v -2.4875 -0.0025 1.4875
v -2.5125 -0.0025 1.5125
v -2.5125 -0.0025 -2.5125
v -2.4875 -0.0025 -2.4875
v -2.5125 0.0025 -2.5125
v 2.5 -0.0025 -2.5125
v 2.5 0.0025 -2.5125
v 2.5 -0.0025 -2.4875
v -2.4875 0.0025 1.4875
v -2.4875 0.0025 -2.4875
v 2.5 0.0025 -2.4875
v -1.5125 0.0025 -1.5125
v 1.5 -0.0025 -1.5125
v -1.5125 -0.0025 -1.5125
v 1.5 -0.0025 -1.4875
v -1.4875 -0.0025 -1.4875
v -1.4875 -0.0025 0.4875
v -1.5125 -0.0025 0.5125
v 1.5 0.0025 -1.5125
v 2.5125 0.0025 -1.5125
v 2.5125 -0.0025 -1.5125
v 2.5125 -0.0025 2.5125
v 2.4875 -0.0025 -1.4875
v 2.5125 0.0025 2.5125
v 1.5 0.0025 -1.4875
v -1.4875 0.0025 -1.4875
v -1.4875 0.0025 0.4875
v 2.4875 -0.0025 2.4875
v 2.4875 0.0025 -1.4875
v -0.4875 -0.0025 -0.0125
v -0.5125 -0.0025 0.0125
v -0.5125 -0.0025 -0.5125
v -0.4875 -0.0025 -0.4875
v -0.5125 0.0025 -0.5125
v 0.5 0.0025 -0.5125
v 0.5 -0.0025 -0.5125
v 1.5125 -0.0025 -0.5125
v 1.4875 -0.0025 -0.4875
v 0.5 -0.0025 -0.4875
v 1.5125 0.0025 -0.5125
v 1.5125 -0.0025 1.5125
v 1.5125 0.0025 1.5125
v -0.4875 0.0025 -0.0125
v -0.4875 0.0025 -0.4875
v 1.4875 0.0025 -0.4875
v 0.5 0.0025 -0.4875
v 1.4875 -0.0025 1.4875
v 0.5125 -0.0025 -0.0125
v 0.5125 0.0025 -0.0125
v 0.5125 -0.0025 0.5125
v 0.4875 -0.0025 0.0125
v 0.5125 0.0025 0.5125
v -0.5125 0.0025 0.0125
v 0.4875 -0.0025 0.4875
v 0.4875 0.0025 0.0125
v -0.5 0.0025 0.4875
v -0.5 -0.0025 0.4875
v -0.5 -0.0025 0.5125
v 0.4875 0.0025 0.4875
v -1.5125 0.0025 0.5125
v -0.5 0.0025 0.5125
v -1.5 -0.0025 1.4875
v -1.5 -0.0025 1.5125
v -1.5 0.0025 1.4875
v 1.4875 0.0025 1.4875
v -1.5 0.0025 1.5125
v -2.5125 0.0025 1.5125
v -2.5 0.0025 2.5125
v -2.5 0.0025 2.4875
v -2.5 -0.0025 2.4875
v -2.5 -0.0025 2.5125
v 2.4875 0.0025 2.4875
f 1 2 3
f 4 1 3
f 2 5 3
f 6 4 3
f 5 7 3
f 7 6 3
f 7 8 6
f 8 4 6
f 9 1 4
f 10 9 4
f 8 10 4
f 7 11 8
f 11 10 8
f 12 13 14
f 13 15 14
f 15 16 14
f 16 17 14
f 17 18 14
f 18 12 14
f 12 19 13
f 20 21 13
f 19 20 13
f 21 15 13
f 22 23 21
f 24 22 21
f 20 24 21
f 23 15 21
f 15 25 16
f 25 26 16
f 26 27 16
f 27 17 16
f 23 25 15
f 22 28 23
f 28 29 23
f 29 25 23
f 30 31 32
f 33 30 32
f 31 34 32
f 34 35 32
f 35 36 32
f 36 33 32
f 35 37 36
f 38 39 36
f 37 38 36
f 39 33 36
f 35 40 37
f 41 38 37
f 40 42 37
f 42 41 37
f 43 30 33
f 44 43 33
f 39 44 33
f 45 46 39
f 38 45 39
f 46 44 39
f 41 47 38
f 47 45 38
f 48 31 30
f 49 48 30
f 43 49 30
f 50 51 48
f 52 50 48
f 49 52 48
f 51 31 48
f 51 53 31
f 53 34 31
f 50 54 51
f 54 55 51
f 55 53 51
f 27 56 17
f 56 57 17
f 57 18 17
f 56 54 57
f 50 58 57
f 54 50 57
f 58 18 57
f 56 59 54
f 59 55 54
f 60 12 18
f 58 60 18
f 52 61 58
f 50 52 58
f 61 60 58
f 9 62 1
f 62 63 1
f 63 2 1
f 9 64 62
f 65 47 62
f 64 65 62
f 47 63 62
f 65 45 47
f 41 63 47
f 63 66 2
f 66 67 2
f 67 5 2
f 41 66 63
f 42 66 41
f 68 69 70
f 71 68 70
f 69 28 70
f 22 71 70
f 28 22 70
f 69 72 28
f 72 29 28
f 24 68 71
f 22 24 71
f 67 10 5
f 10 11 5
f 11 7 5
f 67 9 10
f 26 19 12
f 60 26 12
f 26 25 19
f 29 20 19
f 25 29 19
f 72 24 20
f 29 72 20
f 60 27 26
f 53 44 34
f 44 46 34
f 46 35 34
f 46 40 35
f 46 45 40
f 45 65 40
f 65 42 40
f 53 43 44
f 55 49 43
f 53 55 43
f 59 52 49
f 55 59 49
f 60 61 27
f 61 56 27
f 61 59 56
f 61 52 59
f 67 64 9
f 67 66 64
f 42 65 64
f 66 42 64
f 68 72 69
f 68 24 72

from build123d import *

# Parameters (mm, degrees)
SKETCH3_W = 0.025
SKETCH3_H = 0.005


with BuildPart() as part:
    # Sweep1: sweep along a path in Sketch2
    with BuildLine(Plane(origin=(0, 0, 0), x_dir=(1, 0, 0), z_dir=(0, 1, 0))) as sweep1_path:
        Line((-2.5, -2.5), (2.5, -2.5))
        Line((2.5, -2.5), (2.5, 1.5))
        Line((2.5, 1.5), (1.5, 1.5))
        Line((1.5, 1.5), (-1.5, 1.5))
        Line((-1.5, 1.5), (-1.5, -0.5))
        Line((-1.5, -0.5), (-0.5, -0.5))
        Line((-0.5, -0.5), (0.5, -0.5))
        Line((0.5, -0.5), (0.5, 0))
        Line((0.5, 0), (-0.5, 0))
        Line((-0.5, 0), (-0.5, 0.5))
        Line((-0.5, 0.5), (0.5, 0.5))
        Line((0.5, 0.5), (1.5, 0.5))
        Line((1.5, 0.5), (1.5, -1.5))
        Line((1.5, -1.5), (-1.5, -1.5))
        Line((-1.5, -1.5), (-2.5, -1.5))
        Line((-2.5, -1.5), (-2.5, 2.5))
        Line((-2.5, 2.5), (2.5, 2.5))
    # Sketch3 → Sweep1 (sweep)
    with BuildSketch(Plane(origin=(0, 0, 0), x_dir=(0, 0, -1), z_dir=(1, 0, 0))):
        Rectangle(SKETCH3_W, SKETCH3_H)
    sweep(path=sweep1_path.line, transition=Transition.RIGHT)


solid = part.part
